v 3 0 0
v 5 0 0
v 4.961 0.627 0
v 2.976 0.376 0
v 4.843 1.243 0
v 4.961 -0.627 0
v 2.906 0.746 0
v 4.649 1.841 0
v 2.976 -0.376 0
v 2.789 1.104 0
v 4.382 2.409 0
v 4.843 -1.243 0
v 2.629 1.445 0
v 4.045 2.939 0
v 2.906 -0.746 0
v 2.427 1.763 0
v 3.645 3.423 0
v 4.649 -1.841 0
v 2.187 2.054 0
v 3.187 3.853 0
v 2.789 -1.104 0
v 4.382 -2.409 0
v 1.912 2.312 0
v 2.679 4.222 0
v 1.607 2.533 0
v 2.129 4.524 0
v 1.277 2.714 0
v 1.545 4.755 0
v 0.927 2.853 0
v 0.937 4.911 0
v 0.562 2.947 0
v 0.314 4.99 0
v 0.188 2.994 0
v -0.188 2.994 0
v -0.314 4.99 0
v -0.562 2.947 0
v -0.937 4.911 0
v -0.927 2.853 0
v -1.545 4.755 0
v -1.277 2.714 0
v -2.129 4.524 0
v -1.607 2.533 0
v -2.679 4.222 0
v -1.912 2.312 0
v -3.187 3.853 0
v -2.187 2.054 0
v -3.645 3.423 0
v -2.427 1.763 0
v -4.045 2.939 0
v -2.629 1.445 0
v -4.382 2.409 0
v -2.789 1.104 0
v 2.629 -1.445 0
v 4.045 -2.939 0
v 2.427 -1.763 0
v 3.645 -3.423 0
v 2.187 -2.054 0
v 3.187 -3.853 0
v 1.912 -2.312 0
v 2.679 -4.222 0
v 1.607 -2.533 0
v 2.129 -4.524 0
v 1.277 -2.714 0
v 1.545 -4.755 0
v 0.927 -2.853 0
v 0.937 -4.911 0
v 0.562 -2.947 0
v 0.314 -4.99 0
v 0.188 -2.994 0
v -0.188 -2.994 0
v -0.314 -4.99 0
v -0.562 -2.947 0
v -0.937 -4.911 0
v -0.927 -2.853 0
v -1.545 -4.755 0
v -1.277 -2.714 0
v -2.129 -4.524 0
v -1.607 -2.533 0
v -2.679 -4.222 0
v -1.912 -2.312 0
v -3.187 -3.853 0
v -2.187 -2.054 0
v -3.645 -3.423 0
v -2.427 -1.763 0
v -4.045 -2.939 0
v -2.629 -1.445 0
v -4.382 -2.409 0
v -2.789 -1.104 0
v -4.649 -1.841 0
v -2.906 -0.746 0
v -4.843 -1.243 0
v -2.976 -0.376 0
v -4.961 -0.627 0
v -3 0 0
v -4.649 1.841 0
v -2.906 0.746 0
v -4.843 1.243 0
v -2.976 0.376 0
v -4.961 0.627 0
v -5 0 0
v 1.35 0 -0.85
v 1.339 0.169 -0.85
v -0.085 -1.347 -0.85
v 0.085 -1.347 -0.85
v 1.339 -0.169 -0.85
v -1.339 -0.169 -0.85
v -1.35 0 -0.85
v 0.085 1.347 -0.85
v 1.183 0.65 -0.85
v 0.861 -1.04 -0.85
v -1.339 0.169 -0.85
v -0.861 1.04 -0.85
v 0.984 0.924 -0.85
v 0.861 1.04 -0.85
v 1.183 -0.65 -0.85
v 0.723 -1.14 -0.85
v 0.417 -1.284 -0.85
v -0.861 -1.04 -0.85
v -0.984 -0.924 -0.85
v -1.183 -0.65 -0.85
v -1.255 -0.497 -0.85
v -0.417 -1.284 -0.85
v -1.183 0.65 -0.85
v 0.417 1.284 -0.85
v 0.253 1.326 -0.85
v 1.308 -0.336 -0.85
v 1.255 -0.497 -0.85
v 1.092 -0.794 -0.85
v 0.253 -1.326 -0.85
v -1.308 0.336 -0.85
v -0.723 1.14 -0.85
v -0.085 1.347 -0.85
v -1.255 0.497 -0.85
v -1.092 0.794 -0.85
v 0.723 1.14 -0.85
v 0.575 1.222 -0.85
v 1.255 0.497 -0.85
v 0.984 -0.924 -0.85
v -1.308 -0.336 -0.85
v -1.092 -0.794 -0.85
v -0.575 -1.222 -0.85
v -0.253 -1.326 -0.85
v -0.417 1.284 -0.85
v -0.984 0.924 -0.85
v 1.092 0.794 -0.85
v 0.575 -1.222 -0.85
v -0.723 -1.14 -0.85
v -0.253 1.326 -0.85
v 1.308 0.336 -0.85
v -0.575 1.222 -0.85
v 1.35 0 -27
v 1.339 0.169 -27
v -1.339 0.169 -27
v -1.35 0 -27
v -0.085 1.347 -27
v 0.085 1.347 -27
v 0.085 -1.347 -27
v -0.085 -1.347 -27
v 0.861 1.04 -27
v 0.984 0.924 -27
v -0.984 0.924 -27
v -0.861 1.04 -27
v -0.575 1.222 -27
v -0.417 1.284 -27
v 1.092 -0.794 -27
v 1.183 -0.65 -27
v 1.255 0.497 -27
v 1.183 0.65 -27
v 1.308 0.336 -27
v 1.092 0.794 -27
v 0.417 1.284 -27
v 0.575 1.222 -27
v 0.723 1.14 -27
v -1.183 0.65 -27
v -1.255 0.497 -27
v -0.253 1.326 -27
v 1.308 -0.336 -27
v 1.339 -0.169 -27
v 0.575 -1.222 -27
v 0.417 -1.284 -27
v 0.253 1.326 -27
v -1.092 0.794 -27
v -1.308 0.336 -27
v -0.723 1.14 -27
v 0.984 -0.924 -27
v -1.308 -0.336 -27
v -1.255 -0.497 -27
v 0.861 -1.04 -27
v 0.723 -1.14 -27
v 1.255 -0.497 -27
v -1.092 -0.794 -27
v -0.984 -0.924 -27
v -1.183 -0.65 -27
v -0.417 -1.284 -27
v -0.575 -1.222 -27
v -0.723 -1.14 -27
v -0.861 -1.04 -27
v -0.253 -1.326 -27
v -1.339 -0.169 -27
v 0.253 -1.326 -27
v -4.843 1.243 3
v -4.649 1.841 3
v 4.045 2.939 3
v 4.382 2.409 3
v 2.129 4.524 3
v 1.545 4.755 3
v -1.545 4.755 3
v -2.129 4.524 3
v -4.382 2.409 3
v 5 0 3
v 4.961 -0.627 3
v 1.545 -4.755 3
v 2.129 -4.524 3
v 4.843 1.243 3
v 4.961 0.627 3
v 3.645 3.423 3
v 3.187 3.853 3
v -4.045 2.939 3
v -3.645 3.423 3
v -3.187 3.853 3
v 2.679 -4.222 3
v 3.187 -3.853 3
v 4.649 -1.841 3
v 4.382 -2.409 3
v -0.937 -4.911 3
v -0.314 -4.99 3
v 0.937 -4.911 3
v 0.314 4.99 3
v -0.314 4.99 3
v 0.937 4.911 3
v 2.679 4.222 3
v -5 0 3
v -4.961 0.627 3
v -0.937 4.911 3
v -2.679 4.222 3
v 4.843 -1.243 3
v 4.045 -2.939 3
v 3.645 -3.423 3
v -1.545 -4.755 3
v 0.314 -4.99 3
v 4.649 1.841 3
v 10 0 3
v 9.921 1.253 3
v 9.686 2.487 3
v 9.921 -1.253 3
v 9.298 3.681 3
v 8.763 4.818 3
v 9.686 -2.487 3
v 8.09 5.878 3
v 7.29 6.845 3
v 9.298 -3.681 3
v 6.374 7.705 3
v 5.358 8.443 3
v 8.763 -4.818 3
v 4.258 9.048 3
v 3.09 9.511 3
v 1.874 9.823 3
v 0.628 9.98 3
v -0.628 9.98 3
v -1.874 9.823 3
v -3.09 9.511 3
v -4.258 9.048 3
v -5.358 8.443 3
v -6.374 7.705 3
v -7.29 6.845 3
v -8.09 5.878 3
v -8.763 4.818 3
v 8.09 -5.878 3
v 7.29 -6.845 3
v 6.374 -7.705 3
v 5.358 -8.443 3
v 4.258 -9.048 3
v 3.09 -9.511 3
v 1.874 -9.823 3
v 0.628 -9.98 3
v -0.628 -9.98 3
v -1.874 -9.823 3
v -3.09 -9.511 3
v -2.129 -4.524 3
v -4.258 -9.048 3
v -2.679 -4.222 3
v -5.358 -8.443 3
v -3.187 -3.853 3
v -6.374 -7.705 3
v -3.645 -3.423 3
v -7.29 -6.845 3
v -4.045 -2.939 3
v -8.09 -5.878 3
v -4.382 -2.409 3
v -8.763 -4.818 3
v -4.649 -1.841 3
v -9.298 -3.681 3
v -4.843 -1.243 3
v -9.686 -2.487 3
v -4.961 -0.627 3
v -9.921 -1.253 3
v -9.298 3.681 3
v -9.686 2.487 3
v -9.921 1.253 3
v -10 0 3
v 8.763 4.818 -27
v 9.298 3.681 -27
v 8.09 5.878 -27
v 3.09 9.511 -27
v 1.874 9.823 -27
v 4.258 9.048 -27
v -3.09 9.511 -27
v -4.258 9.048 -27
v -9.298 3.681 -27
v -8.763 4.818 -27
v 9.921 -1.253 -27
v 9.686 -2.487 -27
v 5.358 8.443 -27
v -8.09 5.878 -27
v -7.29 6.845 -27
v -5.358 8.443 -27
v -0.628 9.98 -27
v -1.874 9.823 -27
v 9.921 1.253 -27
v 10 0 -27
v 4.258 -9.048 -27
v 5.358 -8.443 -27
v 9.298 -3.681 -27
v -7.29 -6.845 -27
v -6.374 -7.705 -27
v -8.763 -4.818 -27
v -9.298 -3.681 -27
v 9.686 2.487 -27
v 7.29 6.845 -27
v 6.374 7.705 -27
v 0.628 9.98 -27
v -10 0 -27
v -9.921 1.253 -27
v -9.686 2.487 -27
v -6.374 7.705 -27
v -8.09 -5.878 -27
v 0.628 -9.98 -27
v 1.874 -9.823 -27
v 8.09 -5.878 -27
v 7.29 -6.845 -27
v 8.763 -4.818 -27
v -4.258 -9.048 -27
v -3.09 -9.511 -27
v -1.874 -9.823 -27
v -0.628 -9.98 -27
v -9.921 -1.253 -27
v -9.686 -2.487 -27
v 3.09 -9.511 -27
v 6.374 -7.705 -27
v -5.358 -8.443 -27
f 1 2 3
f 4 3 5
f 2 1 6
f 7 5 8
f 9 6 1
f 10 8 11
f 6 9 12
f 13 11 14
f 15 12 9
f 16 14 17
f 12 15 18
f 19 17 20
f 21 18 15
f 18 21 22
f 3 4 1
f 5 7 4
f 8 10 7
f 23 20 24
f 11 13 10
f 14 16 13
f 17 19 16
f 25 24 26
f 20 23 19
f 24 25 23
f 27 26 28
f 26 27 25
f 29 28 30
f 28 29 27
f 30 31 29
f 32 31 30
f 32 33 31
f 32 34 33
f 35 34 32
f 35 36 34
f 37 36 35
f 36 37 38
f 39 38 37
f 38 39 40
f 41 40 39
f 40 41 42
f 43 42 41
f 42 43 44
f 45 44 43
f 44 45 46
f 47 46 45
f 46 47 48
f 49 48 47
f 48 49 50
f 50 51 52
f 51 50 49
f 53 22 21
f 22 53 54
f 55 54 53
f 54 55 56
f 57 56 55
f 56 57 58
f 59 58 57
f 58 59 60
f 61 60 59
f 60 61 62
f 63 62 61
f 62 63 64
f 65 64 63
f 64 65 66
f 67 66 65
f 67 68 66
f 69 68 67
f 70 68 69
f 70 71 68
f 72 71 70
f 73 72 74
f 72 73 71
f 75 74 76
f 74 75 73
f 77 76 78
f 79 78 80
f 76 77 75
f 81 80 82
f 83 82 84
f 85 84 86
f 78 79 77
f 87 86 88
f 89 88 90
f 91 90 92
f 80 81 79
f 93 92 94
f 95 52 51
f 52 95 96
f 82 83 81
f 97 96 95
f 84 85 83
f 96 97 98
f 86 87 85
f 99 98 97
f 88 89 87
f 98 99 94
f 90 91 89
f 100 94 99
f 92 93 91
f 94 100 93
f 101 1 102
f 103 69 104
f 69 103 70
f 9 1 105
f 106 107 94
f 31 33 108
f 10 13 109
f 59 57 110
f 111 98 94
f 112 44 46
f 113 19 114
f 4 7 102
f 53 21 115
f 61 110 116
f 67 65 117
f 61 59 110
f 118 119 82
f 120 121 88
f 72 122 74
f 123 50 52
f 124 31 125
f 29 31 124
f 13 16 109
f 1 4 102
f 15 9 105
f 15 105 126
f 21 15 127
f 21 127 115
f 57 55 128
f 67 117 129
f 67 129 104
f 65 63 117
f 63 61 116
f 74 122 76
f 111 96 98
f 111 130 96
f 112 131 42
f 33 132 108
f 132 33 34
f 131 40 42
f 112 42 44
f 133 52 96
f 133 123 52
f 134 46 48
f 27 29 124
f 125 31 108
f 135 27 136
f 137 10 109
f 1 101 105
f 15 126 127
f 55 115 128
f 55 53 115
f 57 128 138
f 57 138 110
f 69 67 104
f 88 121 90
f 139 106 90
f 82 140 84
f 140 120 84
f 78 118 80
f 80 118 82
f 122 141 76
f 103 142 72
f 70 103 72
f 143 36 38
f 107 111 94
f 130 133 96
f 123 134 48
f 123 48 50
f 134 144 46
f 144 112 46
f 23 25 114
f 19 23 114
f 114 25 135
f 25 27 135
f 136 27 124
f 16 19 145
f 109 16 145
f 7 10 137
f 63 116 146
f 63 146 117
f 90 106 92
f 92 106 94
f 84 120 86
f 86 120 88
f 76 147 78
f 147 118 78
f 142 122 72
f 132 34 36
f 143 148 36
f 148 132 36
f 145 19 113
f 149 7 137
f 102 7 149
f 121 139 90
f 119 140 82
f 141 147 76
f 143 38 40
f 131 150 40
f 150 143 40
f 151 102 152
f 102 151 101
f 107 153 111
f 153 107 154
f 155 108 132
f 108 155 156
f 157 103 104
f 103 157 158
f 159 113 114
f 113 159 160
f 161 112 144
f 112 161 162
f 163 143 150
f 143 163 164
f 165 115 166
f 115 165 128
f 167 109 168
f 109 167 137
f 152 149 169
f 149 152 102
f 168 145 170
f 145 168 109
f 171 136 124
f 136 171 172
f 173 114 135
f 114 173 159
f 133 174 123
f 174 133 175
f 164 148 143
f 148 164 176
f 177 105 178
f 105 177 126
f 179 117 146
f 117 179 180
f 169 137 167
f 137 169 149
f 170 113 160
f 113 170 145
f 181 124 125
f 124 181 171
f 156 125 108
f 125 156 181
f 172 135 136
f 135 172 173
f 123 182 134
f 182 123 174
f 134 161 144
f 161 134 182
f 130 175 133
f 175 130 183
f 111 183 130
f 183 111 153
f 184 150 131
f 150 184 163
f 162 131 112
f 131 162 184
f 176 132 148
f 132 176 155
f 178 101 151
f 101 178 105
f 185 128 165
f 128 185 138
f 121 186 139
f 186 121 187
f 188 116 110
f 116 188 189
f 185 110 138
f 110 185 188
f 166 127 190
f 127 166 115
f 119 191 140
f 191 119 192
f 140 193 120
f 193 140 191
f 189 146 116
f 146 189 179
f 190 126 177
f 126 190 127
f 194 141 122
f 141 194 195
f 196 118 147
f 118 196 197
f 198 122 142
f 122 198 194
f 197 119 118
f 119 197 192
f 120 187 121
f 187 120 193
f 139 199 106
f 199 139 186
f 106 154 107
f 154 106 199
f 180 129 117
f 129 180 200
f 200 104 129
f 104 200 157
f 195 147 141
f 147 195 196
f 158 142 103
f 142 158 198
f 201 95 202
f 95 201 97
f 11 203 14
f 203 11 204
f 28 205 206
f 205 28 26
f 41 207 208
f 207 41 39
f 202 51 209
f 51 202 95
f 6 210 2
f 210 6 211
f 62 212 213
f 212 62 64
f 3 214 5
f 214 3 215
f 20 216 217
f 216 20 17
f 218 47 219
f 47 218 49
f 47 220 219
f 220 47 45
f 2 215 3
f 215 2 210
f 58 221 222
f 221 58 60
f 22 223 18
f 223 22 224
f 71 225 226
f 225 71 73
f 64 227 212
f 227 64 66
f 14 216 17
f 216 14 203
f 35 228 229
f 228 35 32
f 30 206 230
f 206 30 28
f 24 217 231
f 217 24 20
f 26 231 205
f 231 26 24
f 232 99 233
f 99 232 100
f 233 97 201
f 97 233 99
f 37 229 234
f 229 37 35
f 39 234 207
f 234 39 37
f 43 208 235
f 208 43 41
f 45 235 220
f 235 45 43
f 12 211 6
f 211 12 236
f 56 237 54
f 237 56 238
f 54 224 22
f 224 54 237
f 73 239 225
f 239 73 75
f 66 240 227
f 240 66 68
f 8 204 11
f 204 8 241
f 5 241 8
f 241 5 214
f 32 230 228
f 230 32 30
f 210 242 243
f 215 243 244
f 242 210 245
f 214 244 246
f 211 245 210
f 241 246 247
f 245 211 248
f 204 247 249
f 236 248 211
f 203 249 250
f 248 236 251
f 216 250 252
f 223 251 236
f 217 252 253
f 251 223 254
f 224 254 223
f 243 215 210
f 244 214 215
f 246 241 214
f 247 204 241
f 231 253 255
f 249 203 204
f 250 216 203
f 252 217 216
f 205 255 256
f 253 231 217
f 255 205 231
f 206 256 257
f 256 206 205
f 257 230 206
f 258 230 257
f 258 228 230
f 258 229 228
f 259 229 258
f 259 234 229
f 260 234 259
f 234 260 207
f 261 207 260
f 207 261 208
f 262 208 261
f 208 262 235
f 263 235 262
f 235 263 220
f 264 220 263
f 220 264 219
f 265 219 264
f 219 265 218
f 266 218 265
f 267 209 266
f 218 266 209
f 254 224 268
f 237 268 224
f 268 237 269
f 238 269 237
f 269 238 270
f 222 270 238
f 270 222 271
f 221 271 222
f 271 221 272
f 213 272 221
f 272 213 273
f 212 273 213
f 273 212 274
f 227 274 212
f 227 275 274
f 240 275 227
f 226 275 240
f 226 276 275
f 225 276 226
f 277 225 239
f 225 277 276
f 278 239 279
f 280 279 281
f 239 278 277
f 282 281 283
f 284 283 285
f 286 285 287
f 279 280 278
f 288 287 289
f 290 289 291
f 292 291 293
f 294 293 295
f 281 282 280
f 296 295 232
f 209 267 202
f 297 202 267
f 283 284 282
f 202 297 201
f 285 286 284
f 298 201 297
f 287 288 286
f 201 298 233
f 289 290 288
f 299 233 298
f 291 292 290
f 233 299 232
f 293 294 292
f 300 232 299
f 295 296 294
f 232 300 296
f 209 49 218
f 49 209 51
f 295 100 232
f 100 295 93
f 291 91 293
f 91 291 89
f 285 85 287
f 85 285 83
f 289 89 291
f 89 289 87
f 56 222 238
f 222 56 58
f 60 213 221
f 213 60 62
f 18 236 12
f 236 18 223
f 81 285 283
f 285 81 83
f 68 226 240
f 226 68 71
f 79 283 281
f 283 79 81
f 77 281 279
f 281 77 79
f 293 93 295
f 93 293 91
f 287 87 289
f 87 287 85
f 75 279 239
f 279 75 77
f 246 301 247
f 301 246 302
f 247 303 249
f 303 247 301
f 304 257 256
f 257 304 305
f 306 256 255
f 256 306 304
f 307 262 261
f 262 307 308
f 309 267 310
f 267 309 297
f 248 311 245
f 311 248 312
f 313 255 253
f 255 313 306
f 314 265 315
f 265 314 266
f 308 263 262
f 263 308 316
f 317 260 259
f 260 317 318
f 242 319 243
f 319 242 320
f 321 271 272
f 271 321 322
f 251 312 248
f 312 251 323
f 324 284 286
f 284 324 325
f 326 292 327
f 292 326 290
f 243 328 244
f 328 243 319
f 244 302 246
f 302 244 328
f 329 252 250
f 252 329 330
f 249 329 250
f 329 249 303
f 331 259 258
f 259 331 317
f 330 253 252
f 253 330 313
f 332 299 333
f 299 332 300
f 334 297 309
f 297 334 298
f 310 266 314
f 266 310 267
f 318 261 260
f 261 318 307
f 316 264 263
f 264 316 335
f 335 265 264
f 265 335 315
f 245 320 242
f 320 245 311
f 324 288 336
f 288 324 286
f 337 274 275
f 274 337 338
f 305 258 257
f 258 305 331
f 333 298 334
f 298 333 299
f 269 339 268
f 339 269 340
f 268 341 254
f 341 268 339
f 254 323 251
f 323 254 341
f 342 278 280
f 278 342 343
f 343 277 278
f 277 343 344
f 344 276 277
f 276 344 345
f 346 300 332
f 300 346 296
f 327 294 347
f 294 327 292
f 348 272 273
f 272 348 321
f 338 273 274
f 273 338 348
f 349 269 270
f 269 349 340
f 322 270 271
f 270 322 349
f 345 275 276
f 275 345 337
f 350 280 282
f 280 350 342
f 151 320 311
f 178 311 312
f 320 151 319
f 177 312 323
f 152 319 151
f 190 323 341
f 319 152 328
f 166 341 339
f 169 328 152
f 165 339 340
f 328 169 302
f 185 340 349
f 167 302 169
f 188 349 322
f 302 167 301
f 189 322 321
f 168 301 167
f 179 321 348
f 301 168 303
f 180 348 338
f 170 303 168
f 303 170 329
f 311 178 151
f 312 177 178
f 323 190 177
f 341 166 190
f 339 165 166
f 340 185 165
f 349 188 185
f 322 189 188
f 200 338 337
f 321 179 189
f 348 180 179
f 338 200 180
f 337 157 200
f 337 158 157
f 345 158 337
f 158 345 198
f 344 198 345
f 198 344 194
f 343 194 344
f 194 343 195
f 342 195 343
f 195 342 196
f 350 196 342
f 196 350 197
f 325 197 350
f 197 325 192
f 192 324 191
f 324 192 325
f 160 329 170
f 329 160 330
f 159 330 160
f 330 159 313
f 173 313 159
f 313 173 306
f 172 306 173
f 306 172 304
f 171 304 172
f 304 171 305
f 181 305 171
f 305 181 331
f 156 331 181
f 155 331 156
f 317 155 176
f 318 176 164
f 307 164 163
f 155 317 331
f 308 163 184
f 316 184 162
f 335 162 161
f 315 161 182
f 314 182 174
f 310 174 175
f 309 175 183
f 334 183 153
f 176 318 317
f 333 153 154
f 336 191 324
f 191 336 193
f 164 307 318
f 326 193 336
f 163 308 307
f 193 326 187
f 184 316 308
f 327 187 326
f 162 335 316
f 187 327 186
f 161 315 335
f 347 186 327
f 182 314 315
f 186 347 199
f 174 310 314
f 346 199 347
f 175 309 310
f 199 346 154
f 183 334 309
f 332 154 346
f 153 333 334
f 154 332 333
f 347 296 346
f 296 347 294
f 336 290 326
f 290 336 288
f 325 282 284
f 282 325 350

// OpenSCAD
$fn = 50;


difference() {
	union() {
		translate(v = [0, 0, -27.0000000000]) {
			cylinder(h = 30, r = 10.0000000000);
		}
	}
	union() {
		translate(v = [0, 0, 0]) {
			rotate(a = [0, 0, 0]) {
				difference() {
					union() {
						translate(v = [0, 0, -30.0000000000]) {
							cylinder(h = 30, r = 1.0000000000);
						}
						translate(v = [0, 0, -0.8500000000]) {
							cylinder(h = 0.8500000000, r1 = 1.3500000000, r2 = 3.0000000000);
						}
						translate(v = [0, 0, -30.0000000000]) {
							cylinder(h = 30, r = 1.3500000000);
						}
						translate(v = [0, 0, -30.0000000000]) {
							cylinder(h = 30, r = 1.0000000000);
						}
					}
					union();
				}
			}
		}
		#cylinder(h = 3, r = 5.0000000000);
	}
}
